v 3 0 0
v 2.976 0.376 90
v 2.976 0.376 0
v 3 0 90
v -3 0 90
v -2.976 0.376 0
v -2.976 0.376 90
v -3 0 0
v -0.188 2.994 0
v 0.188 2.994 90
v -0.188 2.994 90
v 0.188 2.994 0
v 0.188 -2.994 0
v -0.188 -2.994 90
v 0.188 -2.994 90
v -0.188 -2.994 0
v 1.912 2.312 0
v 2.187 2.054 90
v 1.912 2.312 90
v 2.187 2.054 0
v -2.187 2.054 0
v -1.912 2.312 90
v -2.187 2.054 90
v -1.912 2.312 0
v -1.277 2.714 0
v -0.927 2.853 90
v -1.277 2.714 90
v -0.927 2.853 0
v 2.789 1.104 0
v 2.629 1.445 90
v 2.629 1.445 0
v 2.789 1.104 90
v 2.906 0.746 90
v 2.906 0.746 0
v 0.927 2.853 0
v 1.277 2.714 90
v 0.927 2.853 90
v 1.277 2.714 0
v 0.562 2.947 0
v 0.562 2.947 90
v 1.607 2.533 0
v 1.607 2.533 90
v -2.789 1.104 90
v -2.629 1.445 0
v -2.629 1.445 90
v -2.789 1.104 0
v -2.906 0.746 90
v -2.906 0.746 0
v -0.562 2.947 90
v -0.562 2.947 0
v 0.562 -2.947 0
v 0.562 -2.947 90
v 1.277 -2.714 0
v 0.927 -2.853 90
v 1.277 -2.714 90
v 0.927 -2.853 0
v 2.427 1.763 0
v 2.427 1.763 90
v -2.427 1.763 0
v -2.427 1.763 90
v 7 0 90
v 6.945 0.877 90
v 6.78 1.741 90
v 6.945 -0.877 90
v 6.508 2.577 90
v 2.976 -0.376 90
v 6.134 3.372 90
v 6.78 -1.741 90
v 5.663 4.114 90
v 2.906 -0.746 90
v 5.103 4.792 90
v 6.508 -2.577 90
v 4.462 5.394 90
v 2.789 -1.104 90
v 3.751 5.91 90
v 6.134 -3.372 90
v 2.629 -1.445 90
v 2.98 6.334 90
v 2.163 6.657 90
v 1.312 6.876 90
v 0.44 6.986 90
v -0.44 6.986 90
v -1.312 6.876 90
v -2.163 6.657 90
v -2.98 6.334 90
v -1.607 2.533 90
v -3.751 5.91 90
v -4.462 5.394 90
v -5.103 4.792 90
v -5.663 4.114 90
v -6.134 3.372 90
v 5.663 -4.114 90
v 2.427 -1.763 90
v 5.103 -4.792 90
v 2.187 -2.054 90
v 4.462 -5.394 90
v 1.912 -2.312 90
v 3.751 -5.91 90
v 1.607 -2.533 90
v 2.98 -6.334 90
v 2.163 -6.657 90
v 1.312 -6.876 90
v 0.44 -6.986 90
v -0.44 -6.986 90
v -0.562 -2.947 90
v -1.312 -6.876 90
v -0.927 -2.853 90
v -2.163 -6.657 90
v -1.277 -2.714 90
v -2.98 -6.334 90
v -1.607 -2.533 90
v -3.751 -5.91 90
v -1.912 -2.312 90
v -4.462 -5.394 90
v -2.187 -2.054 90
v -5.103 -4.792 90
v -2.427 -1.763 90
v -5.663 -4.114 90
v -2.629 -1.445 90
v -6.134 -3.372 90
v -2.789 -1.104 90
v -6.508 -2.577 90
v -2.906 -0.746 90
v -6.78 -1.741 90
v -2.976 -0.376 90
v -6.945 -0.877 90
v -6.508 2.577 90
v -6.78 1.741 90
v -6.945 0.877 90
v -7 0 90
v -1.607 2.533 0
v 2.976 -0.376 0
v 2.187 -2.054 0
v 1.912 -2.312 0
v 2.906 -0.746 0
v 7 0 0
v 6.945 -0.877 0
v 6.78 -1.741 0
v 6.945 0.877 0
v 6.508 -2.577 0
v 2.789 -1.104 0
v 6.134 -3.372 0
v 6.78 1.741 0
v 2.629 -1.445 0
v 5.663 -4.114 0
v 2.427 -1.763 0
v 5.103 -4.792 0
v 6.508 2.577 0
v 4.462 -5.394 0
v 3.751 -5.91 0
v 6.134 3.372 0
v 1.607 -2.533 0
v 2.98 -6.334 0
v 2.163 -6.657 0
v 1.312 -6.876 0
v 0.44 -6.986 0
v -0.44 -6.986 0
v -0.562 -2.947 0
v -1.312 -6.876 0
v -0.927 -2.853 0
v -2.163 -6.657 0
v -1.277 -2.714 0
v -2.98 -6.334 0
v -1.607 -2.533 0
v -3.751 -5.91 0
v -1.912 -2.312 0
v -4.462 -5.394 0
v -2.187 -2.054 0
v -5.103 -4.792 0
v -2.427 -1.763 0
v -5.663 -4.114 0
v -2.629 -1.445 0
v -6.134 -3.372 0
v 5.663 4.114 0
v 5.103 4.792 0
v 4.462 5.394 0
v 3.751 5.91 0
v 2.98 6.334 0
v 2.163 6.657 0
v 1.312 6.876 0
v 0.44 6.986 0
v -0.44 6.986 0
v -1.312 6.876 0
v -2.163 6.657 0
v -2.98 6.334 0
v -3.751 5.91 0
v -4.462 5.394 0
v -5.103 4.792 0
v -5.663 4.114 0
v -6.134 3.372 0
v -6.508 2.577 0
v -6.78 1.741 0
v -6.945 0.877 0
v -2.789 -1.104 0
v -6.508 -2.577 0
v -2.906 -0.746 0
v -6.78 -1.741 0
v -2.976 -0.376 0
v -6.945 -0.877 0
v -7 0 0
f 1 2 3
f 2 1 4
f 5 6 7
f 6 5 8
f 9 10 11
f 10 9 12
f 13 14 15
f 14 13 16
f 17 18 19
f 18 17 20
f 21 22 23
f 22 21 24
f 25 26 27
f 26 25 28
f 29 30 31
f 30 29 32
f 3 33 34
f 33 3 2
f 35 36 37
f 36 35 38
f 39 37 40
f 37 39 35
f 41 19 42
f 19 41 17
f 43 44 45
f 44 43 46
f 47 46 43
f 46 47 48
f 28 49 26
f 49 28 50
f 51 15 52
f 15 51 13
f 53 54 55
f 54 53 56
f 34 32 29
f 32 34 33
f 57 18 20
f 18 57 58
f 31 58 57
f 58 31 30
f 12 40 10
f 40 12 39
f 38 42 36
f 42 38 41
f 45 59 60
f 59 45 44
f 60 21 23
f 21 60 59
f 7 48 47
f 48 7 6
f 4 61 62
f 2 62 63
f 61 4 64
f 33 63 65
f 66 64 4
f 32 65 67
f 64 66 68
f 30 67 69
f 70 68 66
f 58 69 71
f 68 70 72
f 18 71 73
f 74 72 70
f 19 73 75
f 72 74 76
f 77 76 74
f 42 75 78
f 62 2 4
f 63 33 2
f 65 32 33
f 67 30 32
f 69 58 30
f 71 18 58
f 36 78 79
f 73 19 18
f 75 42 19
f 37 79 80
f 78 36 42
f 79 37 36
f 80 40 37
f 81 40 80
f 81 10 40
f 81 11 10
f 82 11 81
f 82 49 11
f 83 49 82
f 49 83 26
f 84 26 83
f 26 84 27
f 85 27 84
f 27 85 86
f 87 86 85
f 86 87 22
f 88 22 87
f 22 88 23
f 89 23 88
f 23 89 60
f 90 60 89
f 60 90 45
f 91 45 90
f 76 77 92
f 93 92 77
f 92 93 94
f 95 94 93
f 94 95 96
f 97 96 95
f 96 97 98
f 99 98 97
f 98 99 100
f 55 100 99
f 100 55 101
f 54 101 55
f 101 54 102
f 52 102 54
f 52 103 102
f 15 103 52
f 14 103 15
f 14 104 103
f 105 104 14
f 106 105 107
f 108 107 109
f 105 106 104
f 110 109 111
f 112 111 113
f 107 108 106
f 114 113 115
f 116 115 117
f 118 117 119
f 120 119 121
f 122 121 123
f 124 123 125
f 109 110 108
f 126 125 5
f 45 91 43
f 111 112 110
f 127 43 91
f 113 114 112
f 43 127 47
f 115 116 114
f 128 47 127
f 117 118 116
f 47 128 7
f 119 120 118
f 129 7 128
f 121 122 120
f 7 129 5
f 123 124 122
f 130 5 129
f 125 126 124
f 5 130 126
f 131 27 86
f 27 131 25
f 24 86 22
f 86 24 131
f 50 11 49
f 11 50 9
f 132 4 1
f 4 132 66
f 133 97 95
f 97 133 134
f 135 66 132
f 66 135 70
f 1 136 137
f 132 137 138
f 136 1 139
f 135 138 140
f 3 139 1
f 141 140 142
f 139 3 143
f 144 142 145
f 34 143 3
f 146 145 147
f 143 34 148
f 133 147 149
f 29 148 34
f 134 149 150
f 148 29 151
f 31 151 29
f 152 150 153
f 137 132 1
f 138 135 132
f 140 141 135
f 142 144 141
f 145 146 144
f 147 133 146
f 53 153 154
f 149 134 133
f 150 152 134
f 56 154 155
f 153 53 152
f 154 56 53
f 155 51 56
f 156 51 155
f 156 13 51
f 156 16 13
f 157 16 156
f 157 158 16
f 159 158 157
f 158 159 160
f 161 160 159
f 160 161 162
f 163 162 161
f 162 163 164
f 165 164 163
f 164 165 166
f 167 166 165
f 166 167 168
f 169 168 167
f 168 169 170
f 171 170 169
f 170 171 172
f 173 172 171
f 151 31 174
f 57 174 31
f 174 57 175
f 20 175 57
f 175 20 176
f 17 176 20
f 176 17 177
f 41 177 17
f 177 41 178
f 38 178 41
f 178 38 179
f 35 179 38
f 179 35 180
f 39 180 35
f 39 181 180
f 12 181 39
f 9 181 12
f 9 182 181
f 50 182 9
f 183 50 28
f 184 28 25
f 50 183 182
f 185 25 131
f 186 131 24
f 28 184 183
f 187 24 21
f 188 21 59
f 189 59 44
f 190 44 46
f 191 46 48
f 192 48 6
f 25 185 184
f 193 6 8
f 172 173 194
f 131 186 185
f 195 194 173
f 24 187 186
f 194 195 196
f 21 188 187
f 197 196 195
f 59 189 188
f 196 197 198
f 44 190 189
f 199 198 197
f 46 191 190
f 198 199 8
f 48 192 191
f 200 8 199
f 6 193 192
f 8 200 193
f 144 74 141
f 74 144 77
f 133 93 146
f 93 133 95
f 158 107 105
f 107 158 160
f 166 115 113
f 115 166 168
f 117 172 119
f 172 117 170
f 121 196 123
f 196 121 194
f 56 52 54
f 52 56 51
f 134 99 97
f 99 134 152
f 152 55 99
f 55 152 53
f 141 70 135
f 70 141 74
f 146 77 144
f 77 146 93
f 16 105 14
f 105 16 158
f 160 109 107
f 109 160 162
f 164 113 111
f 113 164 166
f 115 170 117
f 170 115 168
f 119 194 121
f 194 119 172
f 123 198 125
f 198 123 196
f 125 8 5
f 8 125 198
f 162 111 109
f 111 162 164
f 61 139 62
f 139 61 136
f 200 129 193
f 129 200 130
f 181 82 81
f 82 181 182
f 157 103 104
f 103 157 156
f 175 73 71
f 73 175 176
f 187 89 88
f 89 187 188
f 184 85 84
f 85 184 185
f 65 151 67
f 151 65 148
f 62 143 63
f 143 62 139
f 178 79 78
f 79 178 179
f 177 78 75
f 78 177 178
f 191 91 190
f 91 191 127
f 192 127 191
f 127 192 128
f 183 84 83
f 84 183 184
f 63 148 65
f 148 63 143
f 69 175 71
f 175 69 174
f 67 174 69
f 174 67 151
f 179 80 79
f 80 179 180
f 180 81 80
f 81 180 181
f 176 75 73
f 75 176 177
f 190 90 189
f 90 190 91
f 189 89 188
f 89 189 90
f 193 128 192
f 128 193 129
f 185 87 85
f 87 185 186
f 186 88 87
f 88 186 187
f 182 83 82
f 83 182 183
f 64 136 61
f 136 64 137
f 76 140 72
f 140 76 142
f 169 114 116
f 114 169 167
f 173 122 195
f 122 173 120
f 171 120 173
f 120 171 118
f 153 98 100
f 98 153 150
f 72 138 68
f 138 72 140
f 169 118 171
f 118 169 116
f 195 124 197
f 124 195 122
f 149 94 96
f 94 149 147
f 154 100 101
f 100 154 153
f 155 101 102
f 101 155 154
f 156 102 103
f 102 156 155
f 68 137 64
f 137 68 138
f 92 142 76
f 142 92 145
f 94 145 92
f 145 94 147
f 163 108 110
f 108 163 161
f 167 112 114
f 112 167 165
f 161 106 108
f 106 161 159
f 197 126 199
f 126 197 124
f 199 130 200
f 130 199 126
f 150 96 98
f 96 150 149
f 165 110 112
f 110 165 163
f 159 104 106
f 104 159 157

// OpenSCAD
$fn = 50;


difference() {
	union() {
		cylinder(h = 90, r = 7.0000000000);
	}
	union() {
		cylinder(h = 90, r = 3.0000000000);
		cylinder(h = 90, r = 3.0000000000);
		cylinder(h = 90, r = 1.5000000000);
		cylinder(h = 90, r = 1.5000000000);
		cylinder(h = 90, r = 1.5000000000);
		cylinder(h = 90, r = 1.5000000000);
		cylinder(h = 90, r = 1.5000000000);
		cylinder(h = 90, r = 1.5000000000);
	}
}
